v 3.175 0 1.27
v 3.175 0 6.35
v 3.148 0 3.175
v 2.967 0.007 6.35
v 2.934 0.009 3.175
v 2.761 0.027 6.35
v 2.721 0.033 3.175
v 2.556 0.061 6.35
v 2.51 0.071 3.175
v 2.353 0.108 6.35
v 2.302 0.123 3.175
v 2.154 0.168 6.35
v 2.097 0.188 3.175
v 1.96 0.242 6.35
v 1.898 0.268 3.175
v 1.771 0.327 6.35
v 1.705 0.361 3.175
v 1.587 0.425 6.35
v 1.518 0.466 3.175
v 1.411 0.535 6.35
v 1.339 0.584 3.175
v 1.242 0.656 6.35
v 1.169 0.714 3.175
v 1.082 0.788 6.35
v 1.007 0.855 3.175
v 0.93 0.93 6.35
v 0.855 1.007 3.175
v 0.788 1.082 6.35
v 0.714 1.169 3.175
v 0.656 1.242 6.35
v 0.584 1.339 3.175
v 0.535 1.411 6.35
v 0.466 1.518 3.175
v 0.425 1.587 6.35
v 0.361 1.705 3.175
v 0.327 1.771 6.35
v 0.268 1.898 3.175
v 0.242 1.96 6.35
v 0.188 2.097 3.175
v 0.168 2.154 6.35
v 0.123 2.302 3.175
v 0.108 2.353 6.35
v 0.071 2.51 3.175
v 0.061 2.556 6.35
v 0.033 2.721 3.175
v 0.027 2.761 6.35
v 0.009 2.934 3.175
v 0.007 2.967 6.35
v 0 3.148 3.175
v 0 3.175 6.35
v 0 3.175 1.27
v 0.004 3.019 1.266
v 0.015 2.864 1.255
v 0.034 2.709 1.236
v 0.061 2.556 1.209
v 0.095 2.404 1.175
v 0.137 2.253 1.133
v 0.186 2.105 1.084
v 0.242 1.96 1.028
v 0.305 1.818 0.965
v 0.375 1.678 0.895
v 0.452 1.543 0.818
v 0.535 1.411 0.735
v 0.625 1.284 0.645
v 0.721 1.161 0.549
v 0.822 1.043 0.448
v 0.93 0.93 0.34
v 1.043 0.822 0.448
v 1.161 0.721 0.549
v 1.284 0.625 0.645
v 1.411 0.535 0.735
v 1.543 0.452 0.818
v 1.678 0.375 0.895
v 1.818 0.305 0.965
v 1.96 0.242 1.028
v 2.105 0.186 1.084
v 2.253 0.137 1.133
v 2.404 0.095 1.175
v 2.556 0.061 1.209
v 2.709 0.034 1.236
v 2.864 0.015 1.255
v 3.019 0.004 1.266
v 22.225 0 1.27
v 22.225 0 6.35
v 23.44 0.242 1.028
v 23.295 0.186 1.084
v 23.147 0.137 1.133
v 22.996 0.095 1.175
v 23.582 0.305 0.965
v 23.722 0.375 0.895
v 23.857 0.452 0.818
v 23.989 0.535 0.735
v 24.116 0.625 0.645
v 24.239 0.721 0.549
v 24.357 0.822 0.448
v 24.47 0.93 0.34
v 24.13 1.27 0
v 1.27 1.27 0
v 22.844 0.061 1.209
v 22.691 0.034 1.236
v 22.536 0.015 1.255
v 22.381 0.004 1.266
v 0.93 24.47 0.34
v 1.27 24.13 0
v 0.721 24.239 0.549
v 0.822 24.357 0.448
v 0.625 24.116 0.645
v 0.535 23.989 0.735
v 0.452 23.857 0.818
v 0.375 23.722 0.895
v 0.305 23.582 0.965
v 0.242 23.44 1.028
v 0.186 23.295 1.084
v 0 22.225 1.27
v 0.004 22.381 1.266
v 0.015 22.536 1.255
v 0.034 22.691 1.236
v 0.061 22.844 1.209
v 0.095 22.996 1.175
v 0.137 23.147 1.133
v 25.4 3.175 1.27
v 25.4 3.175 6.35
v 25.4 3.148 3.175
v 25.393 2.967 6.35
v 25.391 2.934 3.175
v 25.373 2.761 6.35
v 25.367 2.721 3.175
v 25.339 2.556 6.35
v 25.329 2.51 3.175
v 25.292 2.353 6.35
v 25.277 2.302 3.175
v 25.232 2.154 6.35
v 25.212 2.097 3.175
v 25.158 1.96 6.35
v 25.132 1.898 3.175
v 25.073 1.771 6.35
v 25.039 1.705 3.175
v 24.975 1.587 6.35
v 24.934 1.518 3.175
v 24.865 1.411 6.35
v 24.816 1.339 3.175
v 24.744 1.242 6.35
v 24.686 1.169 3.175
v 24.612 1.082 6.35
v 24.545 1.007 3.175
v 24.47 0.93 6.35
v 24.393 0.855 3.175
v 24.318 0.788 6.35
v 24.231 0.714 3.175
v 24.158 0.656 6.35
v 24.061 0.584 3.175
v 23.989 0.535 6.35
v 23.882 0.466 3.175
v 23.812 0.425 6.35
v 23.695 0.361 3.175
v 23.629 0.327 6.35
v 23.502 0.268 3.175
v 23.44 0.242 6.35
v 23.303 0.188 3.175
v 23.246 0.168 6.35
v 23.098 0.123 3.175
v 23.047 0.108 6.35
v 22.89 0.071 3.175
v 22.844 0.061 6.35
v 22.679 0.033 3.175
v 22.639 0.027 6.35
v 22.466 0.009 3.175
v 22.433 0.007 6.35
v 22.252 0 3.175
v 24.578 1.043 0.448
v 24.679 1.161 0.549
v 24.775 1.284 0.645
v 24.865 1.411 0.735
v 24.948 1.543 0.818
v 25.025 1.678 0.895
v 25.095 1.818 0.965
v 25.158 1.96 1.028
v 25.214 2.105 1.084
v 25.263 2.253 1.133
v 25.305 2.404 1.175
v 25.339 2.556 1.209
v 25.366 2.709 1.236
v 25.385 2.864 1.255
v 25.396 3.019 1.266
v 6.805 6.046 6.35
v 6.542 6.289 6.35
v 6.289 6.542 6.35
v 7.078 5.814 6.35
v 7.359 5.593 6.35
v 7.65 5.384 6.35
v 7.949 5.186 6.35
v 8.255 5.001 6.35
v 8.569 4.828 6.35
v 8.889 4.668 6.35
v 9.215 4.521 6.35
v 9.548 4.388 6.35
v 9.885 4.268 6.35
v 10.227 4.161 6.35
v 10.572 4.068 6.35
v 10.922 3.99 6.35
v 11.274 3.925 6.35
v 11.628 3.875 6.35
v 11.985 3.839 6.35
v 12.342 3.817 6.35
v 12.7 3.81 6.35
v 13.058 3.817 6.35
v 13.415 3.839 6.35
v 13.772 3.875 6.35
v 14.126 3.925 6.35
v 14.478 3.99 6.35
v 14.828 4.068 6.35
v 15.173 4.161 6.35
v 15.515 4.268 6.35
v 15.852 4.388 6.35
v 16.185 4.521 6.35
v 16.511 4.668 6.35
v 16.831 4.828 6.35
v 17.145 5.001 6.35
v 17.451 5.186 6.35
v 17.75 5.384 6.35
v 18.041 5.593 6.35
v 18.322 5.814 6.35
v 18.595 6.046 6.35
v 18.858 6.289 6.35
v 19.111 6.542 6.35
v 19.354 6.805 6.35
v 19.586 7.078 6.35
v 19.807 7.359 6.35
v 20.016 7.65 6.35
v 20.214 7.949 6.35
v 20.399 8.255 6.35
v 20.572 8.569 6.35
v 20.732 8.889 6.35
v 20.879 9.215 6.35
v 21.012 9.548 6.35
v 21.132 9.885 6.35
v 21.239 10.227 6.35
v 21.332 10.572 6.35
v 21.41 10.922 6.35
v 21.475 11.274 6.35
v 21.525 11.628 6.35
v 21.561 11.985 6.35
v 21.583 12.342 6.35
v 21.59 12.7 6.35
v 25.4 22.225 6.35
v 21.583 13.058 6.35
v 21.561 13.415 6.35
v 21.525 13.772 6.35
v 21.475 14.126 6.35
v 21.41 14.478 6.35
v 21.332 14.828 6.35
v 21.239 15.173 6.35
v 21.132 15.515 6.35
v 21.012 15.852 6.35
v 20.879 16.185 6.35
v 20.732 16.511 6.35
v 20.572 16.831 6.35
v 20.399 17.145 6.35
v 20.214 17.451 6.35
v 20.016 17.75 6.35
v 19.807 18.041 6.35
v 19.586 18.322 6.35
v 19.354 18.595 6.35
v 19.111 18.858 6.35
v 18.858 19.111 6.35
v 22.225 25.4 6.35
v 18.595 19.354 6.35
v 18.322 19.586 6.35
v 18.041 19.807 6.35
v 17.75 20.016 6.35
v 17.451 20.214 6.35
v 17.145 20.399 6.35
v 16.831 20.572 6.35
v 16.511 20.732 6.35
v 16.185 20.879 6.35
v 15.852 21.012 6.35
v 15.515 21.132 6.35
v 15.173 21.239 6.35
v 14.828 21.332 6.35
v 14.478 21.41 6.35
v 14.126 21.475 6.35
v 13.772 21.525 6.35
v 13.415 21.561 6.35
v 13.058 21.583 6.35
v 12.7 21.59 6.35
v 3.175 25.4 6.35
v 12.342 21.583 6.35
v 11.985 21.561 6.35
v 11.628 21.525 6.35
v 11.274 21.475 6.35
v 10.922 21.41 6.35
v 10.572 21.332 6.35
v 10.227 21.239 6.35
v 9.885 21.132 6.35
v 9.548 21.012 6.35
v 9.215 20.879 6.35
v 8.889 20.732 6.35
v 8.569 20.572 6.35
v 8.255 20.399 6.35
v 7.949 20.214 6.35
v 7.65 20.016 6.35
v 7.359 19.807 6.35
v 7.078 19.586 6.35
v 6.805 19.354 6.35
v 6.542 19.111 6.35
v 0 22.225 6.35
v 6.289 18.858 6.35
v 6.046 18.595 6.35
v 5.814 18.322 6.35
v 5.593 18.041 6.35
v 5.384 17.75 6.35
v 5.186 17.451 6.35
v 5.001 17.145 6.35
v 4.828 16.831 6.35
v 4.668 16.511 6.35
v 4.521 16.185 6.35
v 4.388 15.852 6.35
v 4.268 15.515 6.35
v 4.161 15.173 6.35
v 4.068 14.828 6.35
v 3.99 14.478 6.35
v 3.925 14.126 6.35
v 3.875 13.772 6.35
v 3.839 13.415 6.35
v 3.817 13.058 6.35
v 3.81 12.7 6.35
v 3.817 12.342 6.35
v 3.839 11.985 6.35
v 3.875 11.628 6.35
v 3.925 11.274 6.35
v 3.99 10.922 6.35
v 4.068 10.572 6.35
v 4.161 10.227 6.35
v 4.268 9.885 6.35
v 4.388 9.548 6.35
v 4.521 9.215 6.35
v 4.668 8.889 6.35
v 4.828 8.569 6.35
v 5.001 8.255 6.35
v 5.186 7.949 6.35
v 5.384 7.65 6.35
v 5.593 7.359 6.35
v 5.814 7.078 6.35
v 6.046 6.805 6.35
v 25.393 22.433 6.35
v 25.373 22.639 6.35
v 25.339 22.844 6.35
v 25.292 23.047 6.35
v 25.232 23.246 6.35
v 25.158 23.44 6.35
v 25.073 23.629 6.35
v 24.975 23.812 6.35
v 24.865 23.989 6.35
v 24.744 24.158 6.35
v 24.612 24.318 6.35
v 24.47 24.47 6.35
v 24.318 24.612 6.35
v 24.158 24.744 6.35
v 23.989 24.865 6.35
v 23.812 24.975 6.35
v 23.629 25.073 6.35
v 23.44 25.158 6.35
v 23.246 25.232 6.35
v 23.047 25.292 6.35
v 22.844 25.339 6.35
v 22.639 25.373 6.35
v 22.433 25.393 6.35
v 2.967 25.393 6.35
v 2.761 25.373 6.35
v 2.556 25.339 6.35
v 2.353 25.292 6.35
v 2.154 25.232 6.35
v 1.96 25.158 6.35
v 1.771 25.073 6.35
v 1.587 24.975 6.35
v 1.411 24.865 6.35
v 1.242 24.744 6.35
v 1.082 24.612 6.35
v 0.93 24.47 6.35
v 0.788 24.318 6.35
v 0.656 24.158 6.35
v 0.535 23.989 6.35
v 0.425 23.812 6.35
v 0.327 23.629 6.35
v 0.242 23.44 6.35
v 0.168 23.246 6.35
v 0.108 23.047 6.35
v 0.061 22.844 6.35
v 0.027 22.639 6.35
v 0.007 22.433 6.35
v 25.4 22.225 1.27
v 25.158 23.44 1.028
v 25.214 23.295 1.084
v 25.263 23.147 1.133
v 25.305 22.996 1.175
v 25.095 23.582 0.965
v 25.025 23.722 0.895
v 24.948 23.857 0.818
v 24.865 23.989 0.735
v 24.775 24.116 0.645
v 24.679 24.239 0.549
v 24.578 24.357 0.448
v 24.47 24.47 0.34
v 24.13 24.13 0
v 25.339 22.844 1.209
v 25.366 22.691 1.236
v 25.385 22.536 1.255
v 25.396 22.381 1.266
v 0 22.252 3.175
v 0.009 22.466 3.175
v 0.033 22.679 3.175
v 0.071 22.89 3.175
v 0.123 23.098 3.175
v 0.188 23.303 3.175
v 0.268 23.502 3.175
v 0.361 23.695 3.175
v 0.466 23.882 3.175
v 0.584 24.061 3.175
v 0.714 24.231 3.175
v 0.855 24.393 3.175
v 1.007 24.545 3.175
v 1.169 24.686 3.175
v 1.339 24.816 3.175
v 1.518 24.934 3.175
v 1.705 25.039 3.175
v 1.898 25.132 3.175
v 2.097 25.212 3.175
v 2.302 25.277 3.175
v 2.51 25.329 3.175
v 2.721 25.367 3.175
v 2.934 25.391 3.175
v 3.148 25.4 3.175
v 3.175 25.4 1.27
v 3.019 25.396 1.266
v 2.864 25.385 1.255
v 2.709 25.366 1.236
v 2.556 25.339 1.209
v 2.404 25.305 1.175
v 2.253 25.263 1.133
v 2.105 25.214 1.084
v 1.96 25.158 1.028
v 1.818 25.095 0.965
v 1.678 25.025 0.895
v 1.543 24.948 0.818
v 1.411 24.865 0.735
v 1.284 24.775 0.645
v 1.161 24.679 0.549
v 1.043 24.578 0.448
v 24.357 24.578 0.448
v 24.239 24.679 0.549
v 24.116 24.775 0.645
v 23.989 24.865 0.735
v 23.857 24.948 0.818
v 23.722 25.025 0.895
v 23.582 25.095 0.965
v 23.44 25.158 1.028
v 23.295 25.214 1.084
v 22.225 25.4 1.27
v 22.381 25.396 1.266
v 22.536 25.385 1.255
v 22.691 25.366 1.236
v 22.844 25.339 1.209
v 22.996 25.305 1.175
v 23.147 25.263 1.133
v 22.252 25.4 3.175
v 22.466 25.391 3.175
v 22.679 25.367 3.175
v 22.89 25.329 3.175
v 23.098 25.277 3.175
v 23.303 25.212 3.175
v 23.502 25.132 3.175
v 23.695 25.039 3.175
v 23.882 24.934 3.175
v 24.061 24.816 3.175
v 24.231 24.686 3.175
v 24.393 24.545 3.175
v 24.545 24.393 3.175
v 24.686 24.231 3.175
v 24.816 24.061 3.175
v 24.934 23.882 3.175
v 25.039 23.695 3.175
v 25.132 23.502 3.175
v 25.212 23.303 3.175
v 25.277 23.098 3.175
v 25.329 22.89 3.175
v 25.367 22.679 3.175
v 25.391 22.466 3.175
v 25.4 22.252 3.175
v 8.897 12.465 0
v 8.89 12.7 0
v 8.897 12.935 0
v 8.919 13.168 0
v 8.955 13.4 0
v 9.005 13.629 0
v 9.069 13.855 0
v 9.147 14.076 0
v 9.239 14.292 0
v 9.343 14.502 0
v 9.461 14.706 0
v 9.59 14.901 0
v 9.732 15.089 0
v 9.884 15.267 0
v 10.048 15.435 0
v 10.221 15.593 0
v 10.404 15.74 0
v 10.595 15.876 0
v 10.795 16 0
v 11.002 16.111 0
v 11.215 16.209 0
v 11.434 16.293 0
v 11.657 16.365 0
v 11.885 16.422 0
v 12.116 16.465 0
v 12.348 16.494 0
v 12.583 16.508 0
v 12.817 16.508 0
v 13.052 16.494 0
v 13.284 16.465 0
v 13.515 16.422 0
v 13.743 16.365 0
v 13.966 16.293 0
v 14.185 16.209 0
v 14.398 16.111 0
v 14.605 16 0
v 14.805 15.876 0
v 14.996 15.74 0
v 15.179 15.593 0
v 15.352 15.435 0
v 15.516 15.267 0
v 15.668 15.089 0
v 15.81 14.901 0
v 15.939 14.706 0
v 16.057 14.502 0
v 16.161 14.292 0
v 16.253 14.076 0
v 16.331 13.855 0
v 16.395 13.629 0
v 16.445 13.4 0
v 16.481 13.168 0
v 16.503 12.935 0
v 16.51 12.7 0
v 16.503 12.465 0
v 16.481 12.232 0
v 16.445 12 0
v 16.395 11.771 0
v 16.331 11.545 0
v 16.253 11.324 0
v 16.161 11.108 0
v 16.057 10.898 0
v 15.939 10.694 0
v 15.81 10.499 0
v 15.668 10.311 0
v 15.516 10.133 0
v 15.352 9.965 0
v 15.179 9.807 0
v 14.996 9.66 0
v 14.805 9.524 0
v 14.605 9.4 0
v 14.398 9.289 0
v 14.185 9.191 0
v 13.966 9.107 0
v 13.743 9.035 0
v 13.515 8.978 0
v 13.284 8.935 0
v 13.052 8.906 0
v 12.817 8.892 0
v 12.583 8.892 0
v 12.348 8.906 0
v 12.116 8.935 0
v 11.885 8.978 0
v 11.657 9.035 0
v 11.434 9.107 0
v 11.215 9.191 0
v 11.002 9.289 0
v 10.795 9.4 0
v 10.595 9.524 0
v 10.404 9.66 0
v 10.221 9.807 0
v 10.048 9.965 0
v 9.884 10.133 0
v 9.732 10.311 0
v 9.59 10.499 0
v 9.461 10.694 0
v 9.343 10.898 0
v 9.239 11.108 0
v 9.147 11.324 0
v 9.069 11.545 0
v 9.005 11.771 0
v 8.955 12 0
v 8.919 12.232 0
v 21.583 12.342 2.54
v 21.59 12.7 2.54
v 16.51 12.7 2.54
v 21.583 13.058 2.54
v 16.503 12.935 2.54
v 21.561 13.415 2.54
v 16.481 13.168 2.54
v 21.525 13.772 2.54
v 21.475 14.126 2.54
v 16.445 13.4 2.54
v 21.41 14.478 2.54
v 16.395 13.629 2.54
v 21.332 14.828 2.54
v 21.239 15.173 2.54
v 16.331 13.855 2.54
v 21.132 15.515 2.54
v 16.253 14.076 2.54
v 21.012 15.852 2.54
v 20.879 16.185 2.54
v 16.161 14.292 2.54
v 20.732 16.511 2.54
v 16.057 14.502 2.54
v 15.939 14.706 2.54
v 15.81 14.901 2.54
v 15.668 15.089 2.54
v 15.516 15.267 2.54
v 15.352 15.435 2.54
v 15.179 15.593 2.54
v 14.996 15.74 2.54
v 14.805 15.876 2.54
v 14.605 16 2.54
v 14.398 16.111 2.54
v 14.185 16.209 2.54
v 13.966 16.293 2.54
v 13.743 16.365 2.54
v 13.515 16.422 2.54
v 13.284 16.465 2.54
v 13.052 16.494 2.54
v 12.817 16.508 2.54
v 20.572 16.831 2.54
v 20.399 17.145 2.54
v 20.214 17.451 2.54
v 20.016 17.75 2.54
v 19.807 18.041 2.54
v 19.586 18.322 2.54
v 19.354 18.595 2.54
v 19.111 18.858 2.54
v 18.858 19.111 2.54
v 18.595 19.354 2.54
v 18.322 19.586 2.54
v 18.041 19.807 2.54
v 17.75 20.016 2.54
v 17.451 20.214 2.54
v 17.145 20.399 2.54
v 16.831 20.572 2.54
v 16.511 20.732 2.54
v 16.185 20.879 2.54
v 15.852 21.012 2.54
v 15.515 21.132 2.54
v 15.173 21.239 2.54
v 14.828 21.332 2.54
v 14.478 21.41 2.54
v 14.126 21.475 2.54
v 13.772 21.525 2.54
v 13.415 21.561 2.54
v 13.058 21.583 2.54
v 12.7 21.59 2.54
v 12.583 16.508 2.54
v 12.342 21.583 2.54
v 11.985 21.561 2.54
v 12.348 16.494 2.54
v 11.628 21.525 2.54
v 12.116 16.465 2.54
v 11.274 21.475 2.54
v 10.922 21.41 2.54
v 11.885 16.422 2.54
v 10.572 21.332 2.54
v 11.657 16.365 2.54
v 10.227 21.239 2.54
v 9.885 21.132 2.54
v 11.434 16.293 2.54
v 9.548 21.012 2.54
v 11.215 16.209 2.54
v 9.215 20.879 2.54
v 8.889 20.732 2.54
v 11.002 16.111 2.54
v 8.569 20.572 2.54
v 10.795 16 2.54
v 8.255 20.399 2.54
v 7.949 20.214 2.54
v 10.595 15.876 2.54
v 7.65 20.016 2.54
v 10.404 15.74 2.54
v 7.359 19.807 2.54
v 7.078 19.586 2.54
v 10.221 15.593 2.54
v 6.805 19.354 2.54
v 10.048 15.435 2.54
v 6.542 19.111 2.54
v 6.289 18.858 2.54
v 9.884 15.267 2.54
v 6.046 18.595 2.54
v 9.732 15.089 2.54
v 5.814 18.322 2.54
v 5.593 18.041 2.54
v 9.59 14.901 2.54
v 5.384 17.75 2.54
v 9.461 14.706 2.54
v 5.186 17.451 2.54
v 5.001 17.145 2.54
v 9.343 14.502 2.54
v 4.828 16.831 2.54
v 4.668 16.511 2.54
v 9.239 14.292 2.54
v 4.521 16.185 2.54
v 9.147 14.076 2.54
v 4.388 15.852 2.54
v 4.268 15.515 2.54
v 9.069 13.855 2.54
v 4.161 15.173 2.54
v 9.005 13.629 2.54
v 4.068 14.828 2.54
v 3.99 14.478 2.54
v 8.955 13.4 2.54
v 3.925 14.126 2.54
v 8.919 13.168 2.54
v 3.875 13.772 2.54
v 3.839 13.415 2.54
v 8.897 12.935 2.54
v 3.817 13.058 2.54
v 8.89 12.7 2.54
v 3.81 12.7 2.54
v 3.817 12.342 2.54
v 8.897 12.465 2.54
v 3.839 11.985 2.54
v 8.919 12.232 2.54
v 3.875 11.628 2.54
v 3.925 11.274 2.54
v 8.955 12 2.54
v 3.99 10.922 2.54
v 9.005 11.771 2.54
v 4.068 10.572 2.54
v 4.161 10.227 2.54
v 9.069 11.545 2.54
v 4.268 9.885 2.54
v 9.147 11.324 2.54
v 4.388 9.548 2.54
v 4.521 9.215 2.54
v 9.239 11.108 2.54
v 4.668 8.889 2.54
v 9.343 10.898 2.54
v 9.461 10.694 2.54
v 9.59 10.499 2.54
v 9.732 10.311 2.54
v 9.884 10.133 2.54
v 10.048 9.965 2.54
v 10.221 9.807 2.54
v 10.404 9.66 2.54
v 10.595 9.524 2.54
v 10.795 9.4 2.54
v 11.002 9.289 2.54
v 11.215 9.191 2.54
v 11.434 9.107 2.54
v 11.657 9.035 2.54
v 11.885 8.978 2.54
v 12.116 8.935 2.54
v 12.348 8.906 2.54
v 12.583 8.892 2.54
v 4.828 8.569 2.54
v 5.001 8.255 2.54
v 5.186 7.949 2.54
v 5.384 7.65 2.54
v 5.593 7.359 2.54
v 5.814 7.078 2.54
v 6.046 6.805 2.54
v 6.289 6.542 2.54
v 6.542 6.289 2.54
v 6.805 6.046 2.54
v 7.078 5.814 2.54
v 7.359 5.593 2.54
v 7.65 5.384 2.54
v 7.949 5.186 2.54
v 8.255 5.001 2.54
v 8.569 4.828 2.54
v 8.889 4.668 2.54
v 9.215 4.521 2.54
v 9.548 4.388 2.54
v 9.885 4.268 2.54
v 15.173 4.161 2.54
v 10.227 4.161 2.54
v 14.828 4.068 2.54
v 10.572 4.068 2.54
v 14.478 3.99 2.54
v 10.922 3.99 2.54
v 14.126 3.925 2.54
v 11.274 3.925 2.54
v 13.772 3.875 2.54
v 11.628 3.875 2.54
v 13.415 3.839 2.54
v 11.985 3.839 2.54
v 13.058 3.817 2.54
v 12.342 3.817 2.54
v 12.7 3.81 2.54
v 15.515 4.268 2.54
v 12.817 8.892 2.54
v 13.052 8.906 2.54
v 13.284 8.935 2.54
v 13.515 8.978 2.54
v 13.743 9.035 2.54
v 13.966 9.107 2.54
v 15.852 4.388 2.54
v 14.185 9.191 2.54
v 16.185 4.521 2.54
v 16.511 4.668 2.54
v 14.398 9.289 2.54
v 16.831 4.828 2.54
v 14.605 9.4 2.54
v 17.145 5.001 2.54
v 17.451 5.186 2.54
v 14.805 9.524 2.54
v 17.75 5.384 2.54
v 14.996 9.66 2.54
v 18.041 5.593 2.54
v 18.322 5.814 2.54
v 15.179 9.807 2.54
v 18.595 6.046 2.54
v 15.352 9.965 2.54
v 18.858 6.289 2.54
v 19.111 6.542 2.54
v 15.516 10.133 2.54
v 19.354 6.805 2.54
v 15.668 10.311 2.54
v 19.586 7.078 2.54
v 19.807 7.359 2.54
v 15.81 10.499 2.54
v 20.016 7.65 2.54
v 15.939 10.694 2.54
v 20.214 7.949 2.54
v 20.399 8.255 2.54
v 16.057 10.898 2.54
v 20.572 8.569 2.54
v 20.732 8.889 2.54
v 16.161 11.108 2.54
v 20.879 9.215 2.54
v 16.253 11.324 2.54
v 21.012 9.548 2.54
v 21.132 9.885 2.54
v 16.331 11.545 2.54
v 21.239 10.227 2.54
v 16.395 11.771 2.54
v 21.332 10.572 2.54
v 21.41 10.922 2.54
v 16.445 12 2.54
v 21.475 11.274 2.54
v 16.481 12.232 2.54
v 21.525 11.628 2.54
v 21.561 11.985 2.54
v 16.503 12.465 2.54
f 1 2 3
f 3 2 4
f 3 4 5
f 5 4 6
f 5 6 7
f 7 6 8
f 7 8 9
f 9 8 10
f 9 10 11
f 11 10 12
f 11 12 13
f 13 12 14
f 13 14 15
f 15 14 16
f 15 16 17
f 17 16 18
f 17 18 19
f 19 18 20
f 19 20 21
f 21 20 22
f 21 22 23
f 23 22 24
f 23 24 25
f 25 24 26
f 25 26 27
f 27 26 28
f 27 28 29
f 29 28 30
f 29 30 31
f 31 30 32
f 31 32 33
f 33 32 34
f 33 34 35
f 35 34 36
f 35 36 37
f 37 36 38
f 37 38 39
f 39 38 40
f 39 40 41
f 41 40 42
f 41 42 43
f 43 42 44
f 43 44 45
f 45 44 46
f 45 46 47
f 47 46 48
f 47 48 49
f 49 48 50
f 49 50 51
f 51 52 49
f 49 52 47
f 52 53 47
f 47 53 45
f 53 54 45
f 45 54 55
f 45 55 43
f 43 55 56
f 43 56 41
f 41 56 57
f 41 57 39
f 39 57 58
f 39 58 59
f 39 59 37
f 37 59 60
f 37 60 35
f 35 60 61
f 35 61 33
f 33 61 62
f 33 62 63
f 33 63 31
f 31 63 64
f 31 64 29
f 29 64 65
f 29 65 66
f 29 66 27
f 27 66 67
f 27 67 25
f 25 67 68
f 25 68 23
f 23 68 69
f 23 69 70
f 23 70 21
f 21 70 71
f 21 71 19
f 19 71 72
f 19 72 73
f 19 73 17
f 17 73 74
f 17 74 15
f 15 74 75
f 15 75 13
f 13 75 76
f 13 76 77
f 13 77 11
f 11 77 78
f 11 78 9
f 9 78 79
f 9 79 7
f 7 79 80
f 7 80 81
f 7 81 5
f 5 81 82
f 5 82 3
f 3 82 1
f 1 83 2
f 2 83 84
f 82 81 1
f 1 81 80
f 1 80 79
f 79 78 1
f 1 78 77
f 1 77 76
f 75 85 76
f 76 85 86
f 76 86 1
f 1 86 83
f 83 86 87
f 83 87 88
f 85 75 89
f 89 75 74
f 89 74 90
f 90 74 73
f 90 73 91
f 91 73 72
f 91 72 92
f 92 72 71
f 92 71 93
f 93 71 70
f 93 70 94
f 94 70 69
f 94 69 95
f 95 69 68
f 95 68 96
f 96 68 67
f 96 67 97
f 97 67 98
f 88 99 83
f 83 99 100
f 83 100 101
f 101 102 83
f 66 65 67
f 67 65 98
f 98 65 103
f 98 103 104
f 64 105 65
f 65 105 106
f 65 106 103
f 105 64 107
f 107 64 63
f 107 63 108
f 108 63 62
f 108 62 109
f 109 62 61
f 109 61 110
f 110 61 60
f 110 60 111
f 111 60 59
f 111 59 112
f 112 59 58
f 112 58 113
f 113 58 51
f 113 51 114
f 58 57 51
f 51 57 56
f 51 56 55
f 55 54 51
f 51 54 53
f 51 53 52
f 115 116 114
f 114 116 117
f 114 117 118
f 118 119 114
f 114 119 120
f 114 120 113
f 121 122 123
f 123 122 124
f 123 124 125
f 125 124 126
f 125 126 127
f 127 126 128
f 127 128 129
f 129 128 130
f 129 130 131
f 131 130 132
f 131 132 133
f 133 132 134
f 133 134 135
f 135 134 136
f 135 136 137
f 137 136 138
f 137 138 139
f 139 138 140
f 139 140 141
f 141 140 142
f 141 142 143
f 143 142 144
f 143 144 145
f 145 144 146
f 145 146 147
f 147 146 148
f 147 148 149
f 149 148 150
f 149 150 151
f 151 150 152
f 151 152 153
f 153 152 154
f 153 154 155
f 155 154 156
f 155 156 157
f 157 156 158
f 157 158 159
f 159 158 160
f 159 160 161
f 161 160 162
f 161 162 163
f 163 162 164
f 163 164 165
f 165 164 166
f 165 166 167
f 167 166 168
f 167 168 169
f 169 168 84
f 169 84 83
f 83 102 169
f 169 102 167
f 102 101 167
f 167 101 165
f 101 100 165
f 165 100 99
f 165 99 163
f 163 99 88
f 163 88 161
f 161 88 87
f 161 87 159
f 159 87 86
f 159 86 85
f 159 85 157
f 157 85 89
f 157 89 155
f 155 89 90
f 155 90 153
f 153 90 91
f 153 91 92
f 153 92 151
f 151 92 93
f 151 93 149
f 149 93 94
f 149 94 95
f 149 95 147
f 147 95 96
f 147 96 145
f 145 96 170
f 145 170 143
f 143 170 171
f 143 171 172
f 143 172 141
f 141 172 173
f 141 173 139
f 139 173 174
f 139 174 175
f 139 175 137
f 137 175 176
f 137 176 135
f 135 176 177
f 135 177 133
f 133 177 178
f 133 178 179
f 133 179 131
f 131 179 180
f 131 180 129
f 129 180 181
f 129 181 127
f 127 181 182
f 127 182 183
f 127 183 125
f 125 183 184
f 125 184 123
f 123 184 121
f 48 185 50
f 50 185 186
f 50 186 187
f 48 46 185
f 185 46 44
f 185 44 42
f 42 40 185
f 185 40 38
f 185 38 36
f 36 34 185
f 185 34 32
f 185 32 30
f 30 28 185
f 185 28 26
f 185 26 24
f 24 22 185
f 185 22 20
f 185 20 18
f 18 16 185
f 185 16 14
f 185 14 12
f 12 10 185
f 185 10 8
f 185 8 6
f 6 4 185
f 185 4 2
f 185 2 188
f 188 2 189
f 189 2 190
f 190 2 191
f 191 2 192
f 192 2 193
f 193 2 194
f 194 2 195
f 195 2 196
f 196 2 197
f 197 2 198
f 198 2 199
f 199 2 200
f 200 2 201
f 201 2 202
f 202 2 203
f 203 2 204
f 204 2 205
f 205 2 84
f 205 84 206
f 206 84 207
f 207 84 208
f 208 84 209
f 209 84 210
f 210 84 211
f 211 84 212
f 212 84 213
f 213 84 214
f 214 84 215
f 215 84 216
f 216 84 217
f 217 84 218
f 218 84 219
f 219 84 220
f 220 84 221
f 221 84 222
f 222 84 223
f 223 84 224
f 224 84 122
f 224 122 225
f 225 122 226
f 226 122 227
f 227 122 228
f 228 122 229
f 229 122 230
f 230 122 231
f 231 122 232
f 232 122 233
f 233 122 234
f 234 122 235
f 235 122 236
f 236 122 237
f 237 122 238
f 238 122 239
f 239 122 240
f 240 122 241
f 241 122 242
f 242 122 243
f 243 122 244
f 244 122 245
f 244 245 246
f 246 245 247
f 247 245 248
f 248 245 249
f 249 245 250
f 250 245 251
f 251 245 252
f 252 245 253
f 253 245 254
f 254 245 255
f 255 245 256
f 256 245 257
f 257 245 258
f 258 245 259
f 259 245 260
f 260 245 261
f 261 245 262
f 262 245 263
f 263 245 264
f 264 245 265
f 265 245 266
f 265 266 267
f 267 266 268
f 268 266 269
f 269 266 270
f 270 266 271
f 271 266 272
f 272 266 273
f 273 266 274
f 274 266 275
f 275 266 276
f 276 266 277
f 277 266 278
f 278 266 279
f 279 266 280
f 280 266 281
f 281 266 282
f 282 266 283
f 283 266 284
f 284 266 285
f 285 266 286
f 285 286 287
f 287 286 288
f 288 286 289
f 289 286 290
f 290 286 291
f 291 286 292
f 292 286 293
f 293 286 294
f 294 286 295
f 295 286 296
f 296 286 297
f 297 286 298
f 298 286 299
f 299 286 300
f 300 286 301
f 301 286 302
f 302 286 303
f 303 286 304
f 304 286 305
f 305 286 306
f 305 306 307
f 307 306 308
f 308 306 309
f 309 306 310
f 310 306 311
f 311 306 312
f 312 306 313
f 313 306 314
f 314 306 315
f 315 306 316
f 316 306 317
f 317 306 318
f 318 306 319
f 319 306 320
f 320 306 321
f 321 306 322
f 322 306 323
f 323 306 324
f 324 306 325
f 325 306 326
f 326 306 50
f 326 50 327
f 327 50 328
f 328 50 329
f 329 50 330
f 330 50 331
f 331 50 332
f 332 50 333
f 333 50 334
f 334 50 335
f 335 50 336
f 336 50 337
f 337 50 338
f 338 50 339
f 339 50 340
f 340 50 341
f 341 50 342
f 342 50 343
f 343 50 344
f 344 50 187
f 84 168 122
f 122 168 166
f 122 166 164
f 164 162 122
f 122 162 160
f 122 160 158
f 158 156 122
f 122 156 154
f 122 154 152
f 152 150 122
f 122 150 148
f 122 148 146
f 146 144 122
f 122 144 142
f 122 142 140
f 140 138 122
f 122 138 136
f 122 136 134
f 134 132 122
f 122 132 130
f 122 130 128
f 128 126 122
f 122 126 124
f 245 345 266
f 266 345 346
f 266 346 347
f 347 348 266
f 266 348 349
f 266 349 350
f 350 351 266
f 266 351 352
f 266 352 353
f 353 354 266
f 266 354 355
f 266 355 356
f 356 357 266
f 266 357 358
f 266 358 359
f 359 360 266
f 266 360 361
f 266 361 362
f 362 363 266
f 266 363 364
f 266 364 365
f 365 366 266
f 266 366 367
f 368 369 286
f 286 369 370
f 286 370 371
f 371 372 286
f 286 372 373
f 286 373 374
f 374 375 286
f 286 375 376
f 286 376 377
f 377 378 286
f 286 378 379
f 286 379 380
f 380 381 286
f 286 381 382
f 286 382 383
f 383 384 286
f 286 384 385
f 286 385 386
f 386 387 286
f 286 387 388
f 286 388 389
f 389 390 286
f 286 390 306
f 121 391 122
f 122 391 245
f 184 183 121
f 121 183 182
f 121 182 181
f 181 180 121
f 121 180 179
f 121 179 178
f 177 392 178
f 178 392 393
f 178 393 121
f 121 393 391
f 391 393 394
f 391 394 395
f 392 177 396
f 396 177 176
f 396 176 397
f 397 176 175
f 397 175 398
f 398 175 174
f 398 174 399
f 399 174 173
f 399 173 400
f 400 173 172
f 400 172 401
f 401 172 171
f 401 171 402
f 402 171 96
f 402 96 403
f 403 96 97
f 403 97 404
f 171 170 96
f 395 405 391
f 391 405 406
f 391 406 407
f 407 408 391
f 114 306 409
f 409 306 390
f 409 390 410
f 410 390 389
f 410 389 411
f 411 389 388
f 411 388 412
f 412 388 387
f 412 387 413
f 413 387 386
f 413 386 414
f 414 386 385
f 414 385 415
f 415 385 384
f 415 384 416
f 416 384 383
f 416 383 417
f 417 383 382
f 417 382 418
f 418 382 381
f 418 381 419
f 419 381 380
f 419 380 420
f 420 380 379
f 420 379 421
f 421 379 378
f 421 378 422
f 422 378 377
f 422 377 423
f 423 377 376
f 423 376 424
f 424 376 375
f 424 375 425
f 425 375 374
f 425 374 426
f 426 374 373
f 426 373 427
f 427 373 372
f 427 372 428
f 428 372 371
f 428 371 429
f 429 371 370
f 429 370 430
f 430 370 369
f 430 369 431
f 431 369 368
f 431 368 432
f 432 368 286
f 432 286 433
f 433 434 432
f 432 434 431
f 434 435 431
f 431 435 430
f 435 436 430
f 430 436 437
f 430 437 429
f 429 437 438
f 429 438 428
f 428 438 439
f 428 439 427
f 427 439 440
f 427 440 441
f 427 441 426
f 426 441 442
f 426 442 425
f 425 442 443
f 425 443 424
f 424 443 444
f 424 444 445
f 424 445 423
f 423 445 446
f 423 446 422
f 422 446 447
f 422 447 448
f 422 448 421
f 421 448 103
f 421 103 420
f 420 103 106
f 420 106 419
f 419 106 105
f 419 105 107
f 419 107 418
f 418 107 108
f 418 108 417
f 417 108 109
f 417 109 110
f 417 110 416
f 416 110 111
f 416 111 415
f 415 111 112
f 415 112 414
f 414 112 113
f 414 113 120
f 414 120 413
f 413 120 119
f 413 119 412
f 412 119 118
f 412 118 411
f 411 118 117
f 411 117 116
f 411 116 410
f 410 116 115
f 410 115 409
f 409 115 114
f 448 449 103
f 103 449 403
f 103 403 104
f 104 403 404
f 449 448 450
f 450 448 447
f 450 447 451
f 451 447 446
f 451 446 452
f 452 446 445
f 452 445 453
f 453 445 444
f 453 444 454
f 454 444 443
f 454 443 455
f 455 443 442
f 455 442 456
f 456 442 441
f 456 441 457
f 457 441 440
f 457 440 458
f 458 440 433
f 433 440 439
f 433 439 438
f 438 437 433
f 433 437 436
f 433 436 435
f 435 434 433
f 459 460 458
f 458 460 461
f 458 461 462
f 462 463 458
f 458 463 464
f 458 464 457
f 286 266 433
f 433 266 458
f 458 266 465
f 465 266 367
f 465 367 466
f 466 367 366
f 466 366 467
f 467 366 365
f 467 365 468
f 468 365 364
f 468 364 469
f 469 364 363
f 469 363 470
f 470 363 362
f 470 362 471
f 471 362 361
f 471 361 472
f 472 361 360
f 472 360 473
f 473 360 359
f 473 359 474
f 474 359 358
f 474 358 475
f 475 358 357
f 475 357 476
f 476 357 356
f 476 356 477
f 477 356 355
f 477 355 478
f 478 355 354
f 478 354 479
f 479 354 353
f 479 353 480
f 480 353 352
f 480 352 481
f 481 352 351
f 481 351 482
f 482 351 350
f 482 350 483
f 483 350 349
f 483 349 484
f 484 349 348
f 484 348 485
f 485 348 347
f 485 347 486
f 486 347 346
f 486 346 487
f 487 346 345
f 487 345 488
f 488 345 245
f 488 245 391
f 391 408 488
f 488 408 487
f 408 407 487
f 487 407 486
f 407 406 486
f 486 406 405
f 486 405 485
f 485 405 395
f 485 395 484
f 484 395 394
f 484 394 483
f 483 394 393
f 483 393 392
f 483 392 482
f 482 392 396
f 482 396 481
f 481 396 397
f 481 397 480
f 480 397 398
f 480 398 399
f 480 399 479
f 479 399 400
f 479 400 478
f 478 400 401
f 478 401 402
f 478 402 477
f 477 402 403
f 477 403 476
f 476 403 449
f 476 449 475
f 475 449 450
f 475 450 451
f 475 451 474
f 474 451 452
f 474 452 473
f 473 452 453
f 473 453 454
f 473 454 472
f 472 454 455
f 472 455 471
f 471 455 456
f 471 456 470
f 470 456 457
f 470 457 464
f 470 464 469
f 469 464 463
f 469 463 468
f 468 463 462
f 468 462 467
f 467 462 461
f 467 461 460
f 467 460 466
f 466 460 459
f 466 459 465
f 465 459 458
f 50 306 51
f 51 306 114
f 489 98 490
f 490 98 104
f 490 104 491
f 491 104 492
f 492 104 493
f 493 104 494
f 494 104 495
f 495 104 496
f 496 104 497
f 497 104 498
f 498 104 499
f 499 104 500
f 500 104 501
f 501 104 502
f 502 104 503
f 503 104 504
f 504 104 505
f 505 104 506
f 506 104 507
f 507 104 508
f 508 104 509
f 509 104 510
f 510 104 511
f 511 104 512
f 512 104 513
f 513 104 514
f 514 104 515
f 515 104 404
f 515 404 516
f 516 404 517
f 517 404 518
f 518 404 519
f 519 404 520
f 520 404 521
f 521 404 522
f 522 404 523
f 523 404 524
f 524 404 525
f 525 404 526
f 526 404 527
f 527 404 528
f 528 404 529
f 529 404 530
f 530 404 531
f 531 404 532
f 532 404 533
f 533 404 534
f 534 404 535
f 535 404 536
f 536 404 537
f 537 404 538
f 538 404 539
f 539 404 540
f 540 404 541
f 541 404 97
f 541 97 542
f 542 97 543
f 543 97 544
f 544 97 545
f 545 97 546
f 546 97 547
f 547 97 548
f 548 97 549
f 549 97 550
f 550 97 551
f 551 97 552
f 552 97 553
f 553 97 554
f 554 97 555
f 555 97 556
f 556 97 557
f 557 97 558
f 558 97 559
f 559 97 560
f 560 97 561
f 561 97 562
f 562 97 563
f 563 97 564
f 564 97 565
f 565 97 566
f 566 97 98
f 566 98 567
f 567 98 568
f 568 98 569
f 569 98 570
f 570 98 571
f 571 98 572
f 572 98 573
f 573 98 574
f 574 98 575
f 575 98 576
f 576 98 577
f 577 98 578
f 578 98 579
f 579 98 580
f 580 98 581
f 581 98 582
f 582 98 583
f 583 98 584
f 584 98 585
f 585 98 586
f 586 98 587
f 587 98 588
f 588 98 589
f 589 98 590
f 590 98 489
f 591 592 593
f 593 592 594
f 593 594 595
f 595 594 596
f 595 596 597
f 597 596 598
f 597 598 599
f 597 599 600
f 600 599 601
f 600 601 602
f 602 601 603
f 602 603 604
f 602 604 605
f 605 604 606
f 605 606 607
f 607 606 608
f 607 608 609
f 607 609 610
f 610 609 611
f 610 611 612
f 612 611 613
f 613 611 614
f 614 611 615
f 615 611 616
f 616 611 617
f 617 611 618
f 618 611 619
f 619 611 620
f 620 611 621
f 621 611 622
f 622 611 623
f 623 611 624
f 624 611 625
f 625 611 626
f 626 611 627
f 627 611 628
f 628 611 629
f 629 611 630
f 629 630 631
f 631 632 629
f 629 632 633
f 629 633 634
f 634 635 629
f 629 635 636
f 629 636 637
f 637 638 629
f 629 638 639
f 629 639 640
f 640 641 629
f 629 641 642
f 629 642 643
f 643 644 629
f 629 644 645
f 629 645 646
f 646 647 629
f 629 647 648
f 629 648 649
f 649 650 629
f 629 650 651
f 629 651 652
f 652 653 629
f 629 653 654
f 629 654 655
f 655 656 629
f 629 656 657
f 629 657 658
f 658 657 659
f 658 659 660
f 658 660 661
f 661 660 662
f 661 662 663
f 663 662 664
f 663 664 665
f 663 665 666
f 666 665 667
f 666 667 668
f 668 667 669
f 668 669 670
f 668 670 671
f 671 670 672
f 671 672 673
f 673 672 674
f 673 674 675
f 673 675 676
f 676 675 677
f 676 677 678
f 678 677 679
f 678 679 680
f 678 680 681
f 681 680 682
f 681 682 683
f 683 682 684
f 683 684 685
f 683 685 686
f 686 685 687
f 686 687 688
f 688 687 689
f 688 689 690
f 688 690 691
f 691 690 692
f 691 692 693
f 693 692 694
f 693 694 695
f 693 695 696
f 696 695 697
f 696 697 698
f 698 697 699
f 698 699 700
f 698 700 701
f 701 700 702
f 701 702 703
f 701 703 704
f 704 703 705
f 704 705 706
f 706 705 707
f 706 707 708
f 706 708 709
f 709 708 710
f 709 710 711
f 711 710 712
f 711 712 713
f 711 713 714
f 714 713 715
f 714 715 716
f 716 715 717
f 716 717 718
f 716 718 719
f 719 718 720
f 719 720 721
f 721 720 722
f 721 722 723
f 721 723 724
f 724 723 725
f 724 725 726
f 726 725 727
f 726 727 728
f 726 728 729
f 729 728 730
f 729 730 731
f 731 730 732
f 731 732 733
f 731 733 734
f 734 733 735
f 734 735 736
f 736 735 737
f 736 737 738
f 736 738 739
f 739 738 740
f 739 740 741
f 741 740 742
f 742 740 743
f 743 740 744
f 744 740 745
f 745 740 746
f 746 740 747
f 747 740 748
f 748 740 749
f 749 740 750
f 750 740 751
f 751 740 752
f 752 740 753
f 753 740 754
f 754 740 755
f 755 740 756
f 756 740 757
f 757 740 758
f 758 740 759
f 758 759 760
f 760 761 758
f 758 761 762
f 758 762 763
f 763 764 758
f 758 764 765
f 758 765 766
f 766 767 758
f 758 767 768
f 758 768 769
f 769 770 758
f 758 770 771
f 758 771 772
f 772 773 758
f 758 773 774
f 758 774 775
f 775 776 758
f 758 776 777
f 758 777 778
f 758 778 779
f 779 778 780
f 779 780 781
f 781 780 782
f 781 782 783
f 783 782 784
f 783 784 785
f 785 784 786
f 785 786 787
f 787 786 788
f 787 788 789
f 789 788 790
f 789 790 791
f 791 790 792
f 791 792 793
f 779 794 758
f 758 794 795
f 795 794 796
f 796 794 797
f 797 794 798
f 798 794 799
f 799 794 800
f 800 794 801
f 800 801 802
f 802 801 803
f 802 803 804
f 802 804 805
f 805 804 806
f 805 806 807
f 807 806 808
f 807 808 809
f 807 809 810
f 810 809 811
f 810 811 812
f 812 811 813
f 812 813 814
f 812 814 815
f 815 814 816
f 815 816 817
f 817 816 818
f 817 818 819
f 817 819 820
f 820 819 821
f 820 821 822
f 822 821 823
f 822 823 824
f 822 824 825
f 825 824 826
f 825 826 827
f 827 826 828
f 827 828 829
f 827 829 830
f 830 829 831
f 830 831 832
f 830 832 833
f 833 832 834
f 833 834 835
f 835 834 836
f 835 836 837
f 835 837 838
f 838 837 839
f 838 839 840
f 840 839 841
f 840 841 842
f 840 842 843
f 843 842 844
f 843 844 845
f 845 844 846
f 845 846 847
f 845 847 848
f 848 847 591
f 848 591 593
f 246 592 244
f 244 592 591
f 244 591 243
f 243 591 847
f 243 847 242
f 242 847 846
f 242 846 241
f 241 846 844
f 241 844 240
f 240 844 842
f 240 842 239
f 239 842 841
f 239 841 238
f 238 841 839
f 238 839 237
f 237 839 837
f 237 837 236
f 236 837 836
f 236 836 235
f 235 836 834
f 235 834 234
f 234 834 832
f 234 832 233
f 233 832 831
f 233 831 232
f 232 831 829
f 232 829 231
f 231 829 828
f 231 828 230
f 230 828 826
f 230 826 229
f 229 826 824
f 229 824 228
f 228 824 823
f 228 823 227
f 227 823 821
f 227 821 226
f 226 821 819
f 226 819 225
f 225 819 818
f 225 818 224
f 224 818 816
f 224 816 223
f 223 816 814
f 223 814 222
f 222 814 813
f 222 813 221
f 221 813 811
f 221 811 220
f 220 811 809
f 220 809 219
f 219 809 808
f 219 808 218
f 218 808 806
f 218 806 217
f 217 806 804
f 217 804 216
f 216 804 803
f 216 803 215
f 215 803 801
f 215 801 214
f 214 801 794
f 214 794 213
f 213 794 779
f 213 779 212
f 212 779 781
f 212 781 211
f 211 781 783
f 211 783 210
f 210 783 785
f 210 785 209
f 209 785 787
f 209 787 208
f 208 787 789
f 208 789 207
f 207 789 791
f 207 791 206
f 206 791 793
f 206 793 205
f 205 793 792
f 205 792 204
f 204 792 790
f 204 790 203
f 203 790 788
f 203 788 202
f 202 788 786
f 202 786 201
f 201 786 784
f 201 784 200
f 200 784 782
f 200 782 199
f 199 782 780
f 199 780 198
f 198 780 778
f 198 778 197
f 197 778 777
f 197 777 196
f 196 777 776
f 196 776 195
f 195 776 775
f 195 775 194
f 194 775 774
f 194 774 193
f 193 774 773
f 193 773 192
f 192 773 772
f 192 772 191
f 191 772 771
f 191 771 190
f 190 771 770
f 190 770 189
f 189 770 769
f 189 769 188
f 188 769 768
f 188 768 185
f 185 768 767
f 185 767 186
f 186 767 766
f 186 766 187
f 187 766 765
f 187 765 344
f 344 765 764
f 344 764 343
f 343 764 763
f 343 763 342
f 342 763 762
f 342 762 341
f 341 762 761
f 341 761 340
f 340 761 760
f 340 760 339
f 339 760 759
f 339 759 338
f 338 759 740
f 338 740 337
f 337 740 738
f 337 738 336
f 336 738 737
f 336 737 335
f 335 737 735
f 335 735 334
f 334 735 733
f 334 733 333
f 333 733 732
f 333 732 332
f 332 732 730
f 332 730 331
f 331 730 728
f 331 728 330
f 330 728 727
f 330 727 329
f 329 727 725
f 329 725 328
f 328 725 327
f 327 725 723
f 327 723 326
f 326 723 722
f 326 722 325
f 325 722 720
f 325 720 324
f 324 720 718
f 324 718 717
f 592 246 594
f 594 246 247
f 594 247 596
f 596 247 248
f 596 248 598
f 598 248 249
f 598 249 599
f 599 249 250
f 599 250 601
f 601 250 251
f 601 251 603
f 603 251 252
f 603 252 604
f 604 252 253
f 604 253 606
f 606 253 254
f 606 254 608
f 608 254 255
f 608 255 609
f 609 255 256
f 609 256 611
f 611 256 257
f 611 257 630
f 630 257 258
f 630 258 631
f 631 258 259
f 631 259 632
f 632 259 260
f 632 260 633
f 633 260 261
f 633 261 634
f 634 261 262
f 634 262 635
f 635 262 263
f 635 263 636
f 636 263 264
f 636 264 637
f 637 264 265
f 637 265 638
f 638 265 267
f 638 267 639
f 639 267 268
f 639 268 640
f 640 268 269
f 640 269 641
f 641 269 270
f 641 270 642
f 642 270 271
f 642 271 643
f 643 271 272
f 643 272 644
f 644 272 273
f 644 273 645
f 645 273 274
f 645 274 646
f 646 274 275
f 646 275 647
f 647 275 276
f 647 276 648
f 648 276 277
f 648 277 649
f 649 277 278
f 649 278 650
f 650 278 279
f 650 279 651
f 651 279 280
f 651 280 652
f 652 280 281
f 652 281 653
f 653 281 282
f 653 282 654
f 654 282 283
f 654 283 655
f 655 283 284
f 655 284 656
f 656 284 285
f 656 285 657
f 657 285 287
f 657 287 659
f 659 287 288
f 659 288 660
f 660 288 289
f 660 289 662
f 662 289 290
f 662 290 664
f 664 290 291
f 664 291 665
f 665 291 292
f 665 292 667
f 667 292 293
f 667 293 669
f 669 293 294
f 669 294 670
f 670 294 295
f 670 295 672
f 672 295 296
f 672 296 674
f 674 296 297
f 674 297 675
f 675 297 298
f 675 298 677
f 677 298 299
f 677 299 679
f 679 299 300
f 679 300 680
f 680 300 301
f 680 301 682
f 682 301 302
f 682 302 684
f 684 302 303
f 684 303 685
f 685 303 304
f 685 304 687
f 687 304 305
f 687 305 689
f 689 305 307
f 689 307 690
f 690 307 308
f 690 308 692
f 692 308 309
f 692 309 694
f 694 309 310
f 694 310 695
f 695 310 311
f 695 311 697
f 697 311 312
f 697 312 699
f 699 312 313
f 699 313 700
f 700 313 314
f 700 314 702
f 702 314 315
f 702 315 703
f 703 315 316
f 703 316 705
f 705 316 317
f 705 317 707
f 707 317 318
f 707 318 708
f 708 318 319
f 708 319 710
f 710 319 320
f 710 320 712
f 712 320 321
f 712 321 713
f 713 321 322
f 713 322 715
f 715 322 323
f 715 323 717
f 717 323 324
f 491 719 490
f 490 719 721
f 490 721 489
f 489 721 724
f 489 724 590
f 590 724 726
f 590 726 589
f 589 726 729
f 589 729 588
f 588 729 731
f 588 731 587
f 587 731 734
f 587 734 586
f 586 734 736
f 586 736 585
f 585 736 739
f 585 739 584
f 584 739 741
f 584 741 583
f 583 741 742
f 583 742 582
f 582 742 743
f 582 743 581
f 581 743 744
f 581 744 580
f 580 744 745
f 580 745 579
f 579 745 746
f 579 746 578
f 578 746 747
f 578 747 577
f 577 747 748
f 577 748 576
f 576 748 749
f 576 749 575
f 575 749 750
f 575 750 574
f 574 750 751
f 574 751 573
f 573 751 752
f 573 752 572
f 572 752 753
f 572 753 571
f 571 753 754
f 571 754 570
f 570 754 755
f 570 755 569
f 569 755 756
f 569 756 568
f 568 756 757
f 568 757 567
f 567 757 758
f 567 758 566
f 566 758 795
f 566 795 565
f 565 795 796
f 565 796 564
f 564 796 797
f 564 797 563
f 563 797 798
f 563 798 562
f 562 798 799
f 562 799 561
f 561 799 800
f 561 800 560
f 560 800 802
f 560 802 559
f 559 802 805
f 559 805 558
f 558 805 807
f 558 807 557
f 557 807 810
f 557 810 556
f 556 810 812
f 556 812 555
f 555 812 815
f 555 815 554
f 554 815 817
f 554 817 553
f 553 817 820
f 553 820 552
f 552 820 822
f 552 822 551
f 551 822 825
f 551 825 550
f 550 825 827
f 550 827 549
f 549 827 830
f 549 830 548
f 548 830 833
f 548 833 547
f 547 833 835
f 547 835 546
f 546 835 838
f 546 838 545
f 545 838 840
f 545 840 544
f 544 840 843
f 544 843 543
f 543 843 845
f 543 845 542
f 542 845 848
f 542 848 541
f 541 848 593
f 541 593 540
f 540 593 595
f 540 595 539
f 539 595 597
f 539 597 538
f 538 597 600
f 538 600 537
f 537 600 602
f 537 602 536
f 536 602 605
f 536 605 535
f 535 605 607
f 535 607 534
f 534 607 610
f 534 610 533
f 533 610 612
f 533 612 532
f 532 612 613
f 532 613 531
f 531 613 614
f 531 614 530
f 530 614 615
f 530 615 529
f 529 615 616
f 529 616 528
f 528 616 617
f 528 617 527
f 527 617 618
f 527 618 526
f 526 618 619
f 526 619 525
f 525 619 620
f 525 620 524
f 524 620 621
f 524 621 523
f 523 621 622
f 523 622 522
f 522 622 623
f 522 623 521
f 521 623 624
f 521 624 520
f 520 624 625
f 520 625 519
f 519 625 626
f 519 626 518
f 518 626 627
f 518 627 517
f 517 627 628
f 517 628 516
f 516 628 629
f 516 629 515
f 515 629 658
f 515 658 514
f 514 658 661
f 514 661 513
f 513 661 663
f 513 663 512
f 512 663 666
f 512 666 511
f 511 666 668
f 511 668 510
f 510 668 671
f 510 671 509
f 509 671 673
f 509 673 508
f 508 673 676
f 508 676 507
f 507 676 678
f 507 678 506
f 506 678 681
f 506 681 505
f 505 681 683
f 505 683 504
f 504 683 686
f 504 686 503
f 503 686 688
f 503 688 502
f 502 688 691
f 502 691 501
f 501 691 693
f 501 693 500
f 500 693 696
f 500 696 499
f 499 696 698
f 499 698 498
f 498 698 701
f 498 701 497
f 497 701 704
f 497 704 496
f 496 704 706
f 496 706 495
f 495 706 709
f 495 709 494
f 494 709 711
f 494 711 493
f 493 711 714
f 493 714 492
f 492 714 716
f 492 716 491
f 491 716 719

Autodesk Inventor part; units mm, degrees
ref_plane "YZ Plane" through (0, 0, 0) normal (1, 0, 0) x (0, 1, 0)
ref_plane "XZ Plane" through (0, 0, 0) normal (0, 1, 0) x (-1, 0, 0)
ref_plane "XY Plane" through (0, 0, 0) normal (0, 0, 1) x (1, 0, 0)
sketch "Sketch1" plane through (0, 0, 0) normal (0, 0, 1) x (1, 0, 0)
  line L0 (0, 0) -> (25.4, 0)
  line L1 (25.4, 0) -> (25.4, 25.4)
  line L2 (25.4, 25.4) -> (0, 25.4)
  line L3 (0, 25.4) -> (0, 0)
  dimension "d0" = 25.4
extrude "Extrusion1" add sketch "Sketch1" along normal blind 6.35
sketch "Sketch2" plane through (0, 0, 6.35) normal (0, 0, 1) x (1, 0, 0)
  line L0 (25.4, 25.4) -> (0, 25.4) construction
  line L1 (25.4, 0) -> (25.4, 25.4) construction
  line L2 (0, 25.4) -> (25.4, 0) construction
  line L3 (0, 0) -> (25.4, 25.4) construction
  point P0 (12.7, 12.7)
hole "Hole1" at (12.7, 12.7, 6.35) direction (0, 0, -1) diameter 7.62 end through all counterbore diameter 17.78 counterbore depth 3.81
chamfer "Chamfer1" distance 1.27 angle 45 4 edges at (25.4, 12.7, 0) (12.7, 25.4, 0) (0, 12.7, 0) (12.7, 0, 0)
fillet "Fillet1" radius 3.175 4 edges at (25.4, 25.4, 3.81) (0, 25.4, 3.81) (25.4, 0, 3.81) (0, 0, 3.81)
properties part number "testpot"
